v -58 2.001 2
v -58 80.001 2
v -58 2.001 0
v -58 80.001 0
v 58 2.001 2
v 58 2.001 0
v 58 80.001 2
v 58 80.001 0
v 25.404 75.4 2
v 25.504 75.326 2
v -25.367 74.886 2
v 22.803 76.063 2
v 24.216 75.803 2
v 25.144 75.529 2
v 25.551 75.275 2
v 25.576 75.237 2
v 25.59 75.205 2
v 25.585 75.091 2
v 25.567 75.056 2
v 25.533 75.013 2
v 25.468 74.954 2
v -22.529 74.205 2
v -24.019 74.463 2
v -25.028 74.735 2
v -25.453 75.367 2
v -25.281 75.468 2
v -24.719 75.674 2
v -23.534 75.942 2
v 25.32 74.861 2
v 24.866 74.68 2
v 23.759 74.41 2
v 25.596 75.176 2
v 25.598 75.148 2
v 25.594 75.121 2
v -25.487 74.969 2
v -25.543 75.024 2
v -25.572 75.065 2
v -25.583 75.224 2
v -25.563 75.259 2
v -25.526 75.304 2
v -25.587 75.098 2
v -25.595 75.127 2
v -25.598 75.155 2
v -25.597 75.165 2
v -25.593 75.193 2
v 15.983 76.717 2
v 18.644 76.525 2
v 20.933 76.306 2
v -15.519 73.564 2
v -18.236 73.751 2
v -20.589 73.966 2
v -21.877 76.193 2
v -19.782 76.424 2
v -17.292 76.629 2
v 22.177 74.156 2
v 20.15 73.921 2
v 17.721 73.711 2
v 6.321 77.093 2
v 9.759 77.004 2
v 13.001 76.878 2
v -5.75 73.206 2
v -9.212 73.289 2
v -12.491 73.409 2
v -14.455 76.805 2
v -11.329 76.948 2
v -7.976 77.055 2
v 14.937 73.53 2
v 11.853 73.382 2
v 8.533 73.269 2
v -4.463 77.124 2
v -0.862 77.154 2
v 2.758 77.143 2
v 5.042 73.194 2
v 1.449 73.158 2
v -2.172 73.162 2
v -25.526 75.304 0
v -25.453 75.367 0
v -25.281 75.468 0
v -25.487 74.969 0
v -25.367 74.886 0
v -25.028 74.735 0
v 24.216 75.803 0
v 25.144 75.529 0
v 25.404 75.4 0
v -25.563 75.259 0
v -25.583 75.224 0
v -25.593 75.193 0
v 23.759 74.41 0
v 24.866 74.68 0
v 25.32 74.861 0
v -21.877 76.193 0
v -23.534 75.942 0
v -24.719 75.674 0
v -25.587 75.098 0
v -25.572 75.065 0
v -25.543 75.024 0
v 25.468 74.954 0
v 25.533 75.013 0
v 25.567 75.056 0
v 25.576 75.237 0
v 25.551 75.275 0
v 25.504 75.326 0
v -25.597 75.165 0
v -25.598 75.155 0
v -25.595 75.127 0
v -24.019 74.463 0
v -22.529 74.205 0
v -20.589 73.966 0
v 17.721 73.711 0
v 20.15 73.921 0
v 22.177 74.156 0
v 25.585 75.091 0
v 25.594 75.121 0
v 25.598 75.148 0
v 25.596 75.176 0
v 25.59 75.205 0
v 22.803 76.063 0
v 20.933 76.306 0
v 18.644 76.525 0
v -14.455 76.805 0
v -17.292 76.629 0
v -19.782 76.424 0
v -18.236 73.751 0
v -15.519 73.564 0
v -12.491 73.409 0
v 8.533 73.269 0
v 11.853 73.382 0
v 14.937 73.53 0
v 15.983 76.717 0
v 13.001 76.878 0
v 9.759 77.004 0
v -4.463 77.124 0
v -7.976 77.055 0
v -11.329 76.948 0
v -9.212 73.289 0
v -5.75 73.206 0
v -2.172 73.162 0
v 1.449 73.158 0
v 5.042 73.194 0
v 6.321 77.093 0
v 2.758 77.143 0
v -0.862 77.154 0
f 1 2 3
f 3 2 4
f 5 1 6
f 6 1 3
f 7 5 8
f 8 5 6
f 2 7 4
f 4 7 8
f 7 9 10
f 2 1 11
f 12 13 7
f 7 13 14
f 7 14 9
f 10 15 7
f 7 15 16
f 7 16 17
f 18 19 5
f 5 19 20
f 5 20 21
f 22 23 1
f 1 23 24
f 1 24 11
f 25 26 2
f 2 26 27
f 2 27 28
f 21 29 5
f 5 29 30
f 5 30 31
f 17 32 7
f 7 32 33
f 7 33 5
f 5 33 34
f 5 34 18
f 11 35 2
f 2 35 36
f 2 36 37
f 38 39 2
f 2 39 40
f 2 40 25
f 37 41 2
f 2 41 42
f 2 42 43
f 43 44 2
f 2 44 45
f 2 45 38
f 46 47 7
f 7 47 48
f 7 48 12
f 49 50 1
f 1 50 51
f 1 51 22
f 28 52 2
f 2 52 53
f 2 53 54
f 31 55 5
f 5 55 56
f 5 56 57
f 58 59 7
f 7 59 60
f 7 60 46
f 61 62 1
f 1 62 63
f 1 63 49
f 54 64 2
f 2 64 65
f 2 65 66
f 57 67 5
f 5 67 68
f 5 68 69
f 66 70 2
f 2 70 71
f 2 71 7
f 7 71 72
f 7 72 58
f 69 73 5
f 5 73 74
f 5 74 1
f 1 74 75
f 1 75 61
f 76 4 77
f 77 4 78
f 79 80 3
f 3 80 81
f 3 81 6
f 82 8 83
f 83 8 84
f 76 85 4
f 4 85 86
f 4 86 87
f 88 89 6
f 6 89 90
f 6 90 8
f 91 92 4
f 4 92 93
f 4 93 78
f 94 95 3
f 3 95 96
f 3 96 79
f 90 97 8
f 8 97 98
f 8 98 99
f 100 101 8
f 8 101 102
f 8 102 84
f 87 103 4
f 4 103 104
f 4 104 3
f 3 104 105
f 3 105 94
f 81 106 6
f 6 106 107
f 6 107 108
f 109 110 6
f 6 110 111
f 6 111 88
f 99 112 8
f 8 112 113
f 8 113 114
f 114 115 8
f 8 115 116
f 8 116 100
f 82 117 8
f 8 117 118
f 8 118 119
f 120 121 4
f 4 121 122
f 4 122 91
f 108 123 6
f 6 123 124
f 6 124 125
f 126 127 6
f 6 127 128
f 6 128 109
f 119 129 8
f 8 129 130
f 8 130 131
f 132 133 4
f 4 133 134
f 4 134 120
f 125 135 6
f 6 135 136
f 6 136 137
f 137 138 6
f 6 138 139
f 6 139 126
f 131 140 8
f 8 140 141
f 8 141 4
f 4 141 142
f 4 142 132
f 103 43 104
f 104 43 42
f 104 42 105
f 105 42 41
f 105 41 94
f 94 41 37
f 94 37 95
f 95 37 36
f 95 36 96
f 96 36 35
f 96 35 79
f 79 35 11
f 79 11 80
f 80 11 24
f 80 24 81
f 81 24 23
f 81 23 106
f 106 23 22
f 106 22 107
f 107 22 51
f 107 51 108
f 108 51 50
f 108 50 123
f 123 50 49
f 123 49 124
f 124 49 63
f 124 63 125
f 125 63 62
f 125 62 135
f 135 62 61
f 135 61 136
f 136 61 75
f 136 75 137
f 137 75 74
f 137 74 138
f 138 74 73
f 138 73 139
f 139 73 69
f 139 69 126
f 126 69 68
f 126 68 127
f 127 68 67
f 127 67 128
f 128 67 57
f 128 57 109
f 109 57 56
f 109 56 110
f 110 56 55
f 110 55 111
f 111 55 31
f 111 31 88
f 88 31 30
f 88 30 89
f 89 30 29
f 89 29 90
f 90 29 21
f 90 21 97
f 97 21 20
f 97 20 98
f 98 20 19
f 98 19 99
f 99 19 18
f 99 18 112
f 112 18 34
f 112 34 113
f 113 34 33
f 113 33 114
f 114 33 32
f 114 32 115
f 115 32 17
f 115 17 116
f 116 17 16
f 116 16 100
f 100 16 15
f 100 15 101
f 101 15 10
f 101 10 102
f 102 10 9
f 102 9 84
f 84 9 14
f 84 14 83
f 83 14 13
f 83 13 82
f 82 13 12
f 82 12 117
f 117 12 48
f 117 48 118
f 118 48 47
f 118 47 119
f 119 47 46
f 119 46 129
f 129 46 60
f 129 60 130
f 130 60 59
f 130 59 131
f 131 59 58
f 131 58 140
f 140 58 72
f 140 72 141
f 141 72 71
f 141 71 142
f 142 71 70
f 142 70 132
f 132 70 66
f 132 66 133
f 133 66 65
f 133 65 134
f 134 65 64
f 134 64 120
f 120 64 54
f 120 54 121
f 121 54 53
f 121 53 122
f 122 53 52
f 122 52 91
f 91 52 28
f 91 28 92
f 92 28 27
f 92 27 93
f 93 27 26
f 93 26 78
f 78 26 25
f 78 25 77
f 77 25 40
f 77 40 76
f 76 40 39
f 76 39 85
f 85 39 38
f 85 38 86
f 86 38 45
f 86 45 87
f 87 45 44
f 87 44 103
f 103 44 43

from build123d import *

# Parameters (mm, degrees)
CROQUIS1_W              = 116
CROQUIS1_H              = 78
SALIENTE_EXTRUIR1_DEPTH = 2
CORTAR_EXTRUIR1_REACH   = 100.833
CROQUIS2_RX             = 25.597751957
CROQUIS2_RY             = 2


with BuildPart() as part:
    # Croquis1 → Saliente-Extruir1 (new body)
    with BuildSketch(Plane.XY):
        with Locations((0, 41)):
            Rectangle(CROQUIS1_W, CROQUIS1_H)
    extrude(amount=SALIENTE_EXTRUIR1_DEPTH)

    # Croquis2 → Cortar-Extruir1 (cut, up to next)
    with BuildSketch(Plane.XY.offset(2), mode=Mode.PRIVATE) as cortar_extruir1_sk1:
        with Locations(Location((0, 75.153449431), (0, 0, 0))):
            Ellipse(CROQUIS2_RX, CROQUIS2_RY)
    cortar_extruir1_tool1 = extrude(cortar_extruir1_sk1.sketch, amount=-CORTAR_EXTRUIR1_REACH, mode=Mode.PRIVATE) & part.part
    add(cortar_extruir1_tool1.solids().sort_by_distance((0, 75.153449, 2))[0], mode=Mode.SUBTRACT)


solid = part.part
